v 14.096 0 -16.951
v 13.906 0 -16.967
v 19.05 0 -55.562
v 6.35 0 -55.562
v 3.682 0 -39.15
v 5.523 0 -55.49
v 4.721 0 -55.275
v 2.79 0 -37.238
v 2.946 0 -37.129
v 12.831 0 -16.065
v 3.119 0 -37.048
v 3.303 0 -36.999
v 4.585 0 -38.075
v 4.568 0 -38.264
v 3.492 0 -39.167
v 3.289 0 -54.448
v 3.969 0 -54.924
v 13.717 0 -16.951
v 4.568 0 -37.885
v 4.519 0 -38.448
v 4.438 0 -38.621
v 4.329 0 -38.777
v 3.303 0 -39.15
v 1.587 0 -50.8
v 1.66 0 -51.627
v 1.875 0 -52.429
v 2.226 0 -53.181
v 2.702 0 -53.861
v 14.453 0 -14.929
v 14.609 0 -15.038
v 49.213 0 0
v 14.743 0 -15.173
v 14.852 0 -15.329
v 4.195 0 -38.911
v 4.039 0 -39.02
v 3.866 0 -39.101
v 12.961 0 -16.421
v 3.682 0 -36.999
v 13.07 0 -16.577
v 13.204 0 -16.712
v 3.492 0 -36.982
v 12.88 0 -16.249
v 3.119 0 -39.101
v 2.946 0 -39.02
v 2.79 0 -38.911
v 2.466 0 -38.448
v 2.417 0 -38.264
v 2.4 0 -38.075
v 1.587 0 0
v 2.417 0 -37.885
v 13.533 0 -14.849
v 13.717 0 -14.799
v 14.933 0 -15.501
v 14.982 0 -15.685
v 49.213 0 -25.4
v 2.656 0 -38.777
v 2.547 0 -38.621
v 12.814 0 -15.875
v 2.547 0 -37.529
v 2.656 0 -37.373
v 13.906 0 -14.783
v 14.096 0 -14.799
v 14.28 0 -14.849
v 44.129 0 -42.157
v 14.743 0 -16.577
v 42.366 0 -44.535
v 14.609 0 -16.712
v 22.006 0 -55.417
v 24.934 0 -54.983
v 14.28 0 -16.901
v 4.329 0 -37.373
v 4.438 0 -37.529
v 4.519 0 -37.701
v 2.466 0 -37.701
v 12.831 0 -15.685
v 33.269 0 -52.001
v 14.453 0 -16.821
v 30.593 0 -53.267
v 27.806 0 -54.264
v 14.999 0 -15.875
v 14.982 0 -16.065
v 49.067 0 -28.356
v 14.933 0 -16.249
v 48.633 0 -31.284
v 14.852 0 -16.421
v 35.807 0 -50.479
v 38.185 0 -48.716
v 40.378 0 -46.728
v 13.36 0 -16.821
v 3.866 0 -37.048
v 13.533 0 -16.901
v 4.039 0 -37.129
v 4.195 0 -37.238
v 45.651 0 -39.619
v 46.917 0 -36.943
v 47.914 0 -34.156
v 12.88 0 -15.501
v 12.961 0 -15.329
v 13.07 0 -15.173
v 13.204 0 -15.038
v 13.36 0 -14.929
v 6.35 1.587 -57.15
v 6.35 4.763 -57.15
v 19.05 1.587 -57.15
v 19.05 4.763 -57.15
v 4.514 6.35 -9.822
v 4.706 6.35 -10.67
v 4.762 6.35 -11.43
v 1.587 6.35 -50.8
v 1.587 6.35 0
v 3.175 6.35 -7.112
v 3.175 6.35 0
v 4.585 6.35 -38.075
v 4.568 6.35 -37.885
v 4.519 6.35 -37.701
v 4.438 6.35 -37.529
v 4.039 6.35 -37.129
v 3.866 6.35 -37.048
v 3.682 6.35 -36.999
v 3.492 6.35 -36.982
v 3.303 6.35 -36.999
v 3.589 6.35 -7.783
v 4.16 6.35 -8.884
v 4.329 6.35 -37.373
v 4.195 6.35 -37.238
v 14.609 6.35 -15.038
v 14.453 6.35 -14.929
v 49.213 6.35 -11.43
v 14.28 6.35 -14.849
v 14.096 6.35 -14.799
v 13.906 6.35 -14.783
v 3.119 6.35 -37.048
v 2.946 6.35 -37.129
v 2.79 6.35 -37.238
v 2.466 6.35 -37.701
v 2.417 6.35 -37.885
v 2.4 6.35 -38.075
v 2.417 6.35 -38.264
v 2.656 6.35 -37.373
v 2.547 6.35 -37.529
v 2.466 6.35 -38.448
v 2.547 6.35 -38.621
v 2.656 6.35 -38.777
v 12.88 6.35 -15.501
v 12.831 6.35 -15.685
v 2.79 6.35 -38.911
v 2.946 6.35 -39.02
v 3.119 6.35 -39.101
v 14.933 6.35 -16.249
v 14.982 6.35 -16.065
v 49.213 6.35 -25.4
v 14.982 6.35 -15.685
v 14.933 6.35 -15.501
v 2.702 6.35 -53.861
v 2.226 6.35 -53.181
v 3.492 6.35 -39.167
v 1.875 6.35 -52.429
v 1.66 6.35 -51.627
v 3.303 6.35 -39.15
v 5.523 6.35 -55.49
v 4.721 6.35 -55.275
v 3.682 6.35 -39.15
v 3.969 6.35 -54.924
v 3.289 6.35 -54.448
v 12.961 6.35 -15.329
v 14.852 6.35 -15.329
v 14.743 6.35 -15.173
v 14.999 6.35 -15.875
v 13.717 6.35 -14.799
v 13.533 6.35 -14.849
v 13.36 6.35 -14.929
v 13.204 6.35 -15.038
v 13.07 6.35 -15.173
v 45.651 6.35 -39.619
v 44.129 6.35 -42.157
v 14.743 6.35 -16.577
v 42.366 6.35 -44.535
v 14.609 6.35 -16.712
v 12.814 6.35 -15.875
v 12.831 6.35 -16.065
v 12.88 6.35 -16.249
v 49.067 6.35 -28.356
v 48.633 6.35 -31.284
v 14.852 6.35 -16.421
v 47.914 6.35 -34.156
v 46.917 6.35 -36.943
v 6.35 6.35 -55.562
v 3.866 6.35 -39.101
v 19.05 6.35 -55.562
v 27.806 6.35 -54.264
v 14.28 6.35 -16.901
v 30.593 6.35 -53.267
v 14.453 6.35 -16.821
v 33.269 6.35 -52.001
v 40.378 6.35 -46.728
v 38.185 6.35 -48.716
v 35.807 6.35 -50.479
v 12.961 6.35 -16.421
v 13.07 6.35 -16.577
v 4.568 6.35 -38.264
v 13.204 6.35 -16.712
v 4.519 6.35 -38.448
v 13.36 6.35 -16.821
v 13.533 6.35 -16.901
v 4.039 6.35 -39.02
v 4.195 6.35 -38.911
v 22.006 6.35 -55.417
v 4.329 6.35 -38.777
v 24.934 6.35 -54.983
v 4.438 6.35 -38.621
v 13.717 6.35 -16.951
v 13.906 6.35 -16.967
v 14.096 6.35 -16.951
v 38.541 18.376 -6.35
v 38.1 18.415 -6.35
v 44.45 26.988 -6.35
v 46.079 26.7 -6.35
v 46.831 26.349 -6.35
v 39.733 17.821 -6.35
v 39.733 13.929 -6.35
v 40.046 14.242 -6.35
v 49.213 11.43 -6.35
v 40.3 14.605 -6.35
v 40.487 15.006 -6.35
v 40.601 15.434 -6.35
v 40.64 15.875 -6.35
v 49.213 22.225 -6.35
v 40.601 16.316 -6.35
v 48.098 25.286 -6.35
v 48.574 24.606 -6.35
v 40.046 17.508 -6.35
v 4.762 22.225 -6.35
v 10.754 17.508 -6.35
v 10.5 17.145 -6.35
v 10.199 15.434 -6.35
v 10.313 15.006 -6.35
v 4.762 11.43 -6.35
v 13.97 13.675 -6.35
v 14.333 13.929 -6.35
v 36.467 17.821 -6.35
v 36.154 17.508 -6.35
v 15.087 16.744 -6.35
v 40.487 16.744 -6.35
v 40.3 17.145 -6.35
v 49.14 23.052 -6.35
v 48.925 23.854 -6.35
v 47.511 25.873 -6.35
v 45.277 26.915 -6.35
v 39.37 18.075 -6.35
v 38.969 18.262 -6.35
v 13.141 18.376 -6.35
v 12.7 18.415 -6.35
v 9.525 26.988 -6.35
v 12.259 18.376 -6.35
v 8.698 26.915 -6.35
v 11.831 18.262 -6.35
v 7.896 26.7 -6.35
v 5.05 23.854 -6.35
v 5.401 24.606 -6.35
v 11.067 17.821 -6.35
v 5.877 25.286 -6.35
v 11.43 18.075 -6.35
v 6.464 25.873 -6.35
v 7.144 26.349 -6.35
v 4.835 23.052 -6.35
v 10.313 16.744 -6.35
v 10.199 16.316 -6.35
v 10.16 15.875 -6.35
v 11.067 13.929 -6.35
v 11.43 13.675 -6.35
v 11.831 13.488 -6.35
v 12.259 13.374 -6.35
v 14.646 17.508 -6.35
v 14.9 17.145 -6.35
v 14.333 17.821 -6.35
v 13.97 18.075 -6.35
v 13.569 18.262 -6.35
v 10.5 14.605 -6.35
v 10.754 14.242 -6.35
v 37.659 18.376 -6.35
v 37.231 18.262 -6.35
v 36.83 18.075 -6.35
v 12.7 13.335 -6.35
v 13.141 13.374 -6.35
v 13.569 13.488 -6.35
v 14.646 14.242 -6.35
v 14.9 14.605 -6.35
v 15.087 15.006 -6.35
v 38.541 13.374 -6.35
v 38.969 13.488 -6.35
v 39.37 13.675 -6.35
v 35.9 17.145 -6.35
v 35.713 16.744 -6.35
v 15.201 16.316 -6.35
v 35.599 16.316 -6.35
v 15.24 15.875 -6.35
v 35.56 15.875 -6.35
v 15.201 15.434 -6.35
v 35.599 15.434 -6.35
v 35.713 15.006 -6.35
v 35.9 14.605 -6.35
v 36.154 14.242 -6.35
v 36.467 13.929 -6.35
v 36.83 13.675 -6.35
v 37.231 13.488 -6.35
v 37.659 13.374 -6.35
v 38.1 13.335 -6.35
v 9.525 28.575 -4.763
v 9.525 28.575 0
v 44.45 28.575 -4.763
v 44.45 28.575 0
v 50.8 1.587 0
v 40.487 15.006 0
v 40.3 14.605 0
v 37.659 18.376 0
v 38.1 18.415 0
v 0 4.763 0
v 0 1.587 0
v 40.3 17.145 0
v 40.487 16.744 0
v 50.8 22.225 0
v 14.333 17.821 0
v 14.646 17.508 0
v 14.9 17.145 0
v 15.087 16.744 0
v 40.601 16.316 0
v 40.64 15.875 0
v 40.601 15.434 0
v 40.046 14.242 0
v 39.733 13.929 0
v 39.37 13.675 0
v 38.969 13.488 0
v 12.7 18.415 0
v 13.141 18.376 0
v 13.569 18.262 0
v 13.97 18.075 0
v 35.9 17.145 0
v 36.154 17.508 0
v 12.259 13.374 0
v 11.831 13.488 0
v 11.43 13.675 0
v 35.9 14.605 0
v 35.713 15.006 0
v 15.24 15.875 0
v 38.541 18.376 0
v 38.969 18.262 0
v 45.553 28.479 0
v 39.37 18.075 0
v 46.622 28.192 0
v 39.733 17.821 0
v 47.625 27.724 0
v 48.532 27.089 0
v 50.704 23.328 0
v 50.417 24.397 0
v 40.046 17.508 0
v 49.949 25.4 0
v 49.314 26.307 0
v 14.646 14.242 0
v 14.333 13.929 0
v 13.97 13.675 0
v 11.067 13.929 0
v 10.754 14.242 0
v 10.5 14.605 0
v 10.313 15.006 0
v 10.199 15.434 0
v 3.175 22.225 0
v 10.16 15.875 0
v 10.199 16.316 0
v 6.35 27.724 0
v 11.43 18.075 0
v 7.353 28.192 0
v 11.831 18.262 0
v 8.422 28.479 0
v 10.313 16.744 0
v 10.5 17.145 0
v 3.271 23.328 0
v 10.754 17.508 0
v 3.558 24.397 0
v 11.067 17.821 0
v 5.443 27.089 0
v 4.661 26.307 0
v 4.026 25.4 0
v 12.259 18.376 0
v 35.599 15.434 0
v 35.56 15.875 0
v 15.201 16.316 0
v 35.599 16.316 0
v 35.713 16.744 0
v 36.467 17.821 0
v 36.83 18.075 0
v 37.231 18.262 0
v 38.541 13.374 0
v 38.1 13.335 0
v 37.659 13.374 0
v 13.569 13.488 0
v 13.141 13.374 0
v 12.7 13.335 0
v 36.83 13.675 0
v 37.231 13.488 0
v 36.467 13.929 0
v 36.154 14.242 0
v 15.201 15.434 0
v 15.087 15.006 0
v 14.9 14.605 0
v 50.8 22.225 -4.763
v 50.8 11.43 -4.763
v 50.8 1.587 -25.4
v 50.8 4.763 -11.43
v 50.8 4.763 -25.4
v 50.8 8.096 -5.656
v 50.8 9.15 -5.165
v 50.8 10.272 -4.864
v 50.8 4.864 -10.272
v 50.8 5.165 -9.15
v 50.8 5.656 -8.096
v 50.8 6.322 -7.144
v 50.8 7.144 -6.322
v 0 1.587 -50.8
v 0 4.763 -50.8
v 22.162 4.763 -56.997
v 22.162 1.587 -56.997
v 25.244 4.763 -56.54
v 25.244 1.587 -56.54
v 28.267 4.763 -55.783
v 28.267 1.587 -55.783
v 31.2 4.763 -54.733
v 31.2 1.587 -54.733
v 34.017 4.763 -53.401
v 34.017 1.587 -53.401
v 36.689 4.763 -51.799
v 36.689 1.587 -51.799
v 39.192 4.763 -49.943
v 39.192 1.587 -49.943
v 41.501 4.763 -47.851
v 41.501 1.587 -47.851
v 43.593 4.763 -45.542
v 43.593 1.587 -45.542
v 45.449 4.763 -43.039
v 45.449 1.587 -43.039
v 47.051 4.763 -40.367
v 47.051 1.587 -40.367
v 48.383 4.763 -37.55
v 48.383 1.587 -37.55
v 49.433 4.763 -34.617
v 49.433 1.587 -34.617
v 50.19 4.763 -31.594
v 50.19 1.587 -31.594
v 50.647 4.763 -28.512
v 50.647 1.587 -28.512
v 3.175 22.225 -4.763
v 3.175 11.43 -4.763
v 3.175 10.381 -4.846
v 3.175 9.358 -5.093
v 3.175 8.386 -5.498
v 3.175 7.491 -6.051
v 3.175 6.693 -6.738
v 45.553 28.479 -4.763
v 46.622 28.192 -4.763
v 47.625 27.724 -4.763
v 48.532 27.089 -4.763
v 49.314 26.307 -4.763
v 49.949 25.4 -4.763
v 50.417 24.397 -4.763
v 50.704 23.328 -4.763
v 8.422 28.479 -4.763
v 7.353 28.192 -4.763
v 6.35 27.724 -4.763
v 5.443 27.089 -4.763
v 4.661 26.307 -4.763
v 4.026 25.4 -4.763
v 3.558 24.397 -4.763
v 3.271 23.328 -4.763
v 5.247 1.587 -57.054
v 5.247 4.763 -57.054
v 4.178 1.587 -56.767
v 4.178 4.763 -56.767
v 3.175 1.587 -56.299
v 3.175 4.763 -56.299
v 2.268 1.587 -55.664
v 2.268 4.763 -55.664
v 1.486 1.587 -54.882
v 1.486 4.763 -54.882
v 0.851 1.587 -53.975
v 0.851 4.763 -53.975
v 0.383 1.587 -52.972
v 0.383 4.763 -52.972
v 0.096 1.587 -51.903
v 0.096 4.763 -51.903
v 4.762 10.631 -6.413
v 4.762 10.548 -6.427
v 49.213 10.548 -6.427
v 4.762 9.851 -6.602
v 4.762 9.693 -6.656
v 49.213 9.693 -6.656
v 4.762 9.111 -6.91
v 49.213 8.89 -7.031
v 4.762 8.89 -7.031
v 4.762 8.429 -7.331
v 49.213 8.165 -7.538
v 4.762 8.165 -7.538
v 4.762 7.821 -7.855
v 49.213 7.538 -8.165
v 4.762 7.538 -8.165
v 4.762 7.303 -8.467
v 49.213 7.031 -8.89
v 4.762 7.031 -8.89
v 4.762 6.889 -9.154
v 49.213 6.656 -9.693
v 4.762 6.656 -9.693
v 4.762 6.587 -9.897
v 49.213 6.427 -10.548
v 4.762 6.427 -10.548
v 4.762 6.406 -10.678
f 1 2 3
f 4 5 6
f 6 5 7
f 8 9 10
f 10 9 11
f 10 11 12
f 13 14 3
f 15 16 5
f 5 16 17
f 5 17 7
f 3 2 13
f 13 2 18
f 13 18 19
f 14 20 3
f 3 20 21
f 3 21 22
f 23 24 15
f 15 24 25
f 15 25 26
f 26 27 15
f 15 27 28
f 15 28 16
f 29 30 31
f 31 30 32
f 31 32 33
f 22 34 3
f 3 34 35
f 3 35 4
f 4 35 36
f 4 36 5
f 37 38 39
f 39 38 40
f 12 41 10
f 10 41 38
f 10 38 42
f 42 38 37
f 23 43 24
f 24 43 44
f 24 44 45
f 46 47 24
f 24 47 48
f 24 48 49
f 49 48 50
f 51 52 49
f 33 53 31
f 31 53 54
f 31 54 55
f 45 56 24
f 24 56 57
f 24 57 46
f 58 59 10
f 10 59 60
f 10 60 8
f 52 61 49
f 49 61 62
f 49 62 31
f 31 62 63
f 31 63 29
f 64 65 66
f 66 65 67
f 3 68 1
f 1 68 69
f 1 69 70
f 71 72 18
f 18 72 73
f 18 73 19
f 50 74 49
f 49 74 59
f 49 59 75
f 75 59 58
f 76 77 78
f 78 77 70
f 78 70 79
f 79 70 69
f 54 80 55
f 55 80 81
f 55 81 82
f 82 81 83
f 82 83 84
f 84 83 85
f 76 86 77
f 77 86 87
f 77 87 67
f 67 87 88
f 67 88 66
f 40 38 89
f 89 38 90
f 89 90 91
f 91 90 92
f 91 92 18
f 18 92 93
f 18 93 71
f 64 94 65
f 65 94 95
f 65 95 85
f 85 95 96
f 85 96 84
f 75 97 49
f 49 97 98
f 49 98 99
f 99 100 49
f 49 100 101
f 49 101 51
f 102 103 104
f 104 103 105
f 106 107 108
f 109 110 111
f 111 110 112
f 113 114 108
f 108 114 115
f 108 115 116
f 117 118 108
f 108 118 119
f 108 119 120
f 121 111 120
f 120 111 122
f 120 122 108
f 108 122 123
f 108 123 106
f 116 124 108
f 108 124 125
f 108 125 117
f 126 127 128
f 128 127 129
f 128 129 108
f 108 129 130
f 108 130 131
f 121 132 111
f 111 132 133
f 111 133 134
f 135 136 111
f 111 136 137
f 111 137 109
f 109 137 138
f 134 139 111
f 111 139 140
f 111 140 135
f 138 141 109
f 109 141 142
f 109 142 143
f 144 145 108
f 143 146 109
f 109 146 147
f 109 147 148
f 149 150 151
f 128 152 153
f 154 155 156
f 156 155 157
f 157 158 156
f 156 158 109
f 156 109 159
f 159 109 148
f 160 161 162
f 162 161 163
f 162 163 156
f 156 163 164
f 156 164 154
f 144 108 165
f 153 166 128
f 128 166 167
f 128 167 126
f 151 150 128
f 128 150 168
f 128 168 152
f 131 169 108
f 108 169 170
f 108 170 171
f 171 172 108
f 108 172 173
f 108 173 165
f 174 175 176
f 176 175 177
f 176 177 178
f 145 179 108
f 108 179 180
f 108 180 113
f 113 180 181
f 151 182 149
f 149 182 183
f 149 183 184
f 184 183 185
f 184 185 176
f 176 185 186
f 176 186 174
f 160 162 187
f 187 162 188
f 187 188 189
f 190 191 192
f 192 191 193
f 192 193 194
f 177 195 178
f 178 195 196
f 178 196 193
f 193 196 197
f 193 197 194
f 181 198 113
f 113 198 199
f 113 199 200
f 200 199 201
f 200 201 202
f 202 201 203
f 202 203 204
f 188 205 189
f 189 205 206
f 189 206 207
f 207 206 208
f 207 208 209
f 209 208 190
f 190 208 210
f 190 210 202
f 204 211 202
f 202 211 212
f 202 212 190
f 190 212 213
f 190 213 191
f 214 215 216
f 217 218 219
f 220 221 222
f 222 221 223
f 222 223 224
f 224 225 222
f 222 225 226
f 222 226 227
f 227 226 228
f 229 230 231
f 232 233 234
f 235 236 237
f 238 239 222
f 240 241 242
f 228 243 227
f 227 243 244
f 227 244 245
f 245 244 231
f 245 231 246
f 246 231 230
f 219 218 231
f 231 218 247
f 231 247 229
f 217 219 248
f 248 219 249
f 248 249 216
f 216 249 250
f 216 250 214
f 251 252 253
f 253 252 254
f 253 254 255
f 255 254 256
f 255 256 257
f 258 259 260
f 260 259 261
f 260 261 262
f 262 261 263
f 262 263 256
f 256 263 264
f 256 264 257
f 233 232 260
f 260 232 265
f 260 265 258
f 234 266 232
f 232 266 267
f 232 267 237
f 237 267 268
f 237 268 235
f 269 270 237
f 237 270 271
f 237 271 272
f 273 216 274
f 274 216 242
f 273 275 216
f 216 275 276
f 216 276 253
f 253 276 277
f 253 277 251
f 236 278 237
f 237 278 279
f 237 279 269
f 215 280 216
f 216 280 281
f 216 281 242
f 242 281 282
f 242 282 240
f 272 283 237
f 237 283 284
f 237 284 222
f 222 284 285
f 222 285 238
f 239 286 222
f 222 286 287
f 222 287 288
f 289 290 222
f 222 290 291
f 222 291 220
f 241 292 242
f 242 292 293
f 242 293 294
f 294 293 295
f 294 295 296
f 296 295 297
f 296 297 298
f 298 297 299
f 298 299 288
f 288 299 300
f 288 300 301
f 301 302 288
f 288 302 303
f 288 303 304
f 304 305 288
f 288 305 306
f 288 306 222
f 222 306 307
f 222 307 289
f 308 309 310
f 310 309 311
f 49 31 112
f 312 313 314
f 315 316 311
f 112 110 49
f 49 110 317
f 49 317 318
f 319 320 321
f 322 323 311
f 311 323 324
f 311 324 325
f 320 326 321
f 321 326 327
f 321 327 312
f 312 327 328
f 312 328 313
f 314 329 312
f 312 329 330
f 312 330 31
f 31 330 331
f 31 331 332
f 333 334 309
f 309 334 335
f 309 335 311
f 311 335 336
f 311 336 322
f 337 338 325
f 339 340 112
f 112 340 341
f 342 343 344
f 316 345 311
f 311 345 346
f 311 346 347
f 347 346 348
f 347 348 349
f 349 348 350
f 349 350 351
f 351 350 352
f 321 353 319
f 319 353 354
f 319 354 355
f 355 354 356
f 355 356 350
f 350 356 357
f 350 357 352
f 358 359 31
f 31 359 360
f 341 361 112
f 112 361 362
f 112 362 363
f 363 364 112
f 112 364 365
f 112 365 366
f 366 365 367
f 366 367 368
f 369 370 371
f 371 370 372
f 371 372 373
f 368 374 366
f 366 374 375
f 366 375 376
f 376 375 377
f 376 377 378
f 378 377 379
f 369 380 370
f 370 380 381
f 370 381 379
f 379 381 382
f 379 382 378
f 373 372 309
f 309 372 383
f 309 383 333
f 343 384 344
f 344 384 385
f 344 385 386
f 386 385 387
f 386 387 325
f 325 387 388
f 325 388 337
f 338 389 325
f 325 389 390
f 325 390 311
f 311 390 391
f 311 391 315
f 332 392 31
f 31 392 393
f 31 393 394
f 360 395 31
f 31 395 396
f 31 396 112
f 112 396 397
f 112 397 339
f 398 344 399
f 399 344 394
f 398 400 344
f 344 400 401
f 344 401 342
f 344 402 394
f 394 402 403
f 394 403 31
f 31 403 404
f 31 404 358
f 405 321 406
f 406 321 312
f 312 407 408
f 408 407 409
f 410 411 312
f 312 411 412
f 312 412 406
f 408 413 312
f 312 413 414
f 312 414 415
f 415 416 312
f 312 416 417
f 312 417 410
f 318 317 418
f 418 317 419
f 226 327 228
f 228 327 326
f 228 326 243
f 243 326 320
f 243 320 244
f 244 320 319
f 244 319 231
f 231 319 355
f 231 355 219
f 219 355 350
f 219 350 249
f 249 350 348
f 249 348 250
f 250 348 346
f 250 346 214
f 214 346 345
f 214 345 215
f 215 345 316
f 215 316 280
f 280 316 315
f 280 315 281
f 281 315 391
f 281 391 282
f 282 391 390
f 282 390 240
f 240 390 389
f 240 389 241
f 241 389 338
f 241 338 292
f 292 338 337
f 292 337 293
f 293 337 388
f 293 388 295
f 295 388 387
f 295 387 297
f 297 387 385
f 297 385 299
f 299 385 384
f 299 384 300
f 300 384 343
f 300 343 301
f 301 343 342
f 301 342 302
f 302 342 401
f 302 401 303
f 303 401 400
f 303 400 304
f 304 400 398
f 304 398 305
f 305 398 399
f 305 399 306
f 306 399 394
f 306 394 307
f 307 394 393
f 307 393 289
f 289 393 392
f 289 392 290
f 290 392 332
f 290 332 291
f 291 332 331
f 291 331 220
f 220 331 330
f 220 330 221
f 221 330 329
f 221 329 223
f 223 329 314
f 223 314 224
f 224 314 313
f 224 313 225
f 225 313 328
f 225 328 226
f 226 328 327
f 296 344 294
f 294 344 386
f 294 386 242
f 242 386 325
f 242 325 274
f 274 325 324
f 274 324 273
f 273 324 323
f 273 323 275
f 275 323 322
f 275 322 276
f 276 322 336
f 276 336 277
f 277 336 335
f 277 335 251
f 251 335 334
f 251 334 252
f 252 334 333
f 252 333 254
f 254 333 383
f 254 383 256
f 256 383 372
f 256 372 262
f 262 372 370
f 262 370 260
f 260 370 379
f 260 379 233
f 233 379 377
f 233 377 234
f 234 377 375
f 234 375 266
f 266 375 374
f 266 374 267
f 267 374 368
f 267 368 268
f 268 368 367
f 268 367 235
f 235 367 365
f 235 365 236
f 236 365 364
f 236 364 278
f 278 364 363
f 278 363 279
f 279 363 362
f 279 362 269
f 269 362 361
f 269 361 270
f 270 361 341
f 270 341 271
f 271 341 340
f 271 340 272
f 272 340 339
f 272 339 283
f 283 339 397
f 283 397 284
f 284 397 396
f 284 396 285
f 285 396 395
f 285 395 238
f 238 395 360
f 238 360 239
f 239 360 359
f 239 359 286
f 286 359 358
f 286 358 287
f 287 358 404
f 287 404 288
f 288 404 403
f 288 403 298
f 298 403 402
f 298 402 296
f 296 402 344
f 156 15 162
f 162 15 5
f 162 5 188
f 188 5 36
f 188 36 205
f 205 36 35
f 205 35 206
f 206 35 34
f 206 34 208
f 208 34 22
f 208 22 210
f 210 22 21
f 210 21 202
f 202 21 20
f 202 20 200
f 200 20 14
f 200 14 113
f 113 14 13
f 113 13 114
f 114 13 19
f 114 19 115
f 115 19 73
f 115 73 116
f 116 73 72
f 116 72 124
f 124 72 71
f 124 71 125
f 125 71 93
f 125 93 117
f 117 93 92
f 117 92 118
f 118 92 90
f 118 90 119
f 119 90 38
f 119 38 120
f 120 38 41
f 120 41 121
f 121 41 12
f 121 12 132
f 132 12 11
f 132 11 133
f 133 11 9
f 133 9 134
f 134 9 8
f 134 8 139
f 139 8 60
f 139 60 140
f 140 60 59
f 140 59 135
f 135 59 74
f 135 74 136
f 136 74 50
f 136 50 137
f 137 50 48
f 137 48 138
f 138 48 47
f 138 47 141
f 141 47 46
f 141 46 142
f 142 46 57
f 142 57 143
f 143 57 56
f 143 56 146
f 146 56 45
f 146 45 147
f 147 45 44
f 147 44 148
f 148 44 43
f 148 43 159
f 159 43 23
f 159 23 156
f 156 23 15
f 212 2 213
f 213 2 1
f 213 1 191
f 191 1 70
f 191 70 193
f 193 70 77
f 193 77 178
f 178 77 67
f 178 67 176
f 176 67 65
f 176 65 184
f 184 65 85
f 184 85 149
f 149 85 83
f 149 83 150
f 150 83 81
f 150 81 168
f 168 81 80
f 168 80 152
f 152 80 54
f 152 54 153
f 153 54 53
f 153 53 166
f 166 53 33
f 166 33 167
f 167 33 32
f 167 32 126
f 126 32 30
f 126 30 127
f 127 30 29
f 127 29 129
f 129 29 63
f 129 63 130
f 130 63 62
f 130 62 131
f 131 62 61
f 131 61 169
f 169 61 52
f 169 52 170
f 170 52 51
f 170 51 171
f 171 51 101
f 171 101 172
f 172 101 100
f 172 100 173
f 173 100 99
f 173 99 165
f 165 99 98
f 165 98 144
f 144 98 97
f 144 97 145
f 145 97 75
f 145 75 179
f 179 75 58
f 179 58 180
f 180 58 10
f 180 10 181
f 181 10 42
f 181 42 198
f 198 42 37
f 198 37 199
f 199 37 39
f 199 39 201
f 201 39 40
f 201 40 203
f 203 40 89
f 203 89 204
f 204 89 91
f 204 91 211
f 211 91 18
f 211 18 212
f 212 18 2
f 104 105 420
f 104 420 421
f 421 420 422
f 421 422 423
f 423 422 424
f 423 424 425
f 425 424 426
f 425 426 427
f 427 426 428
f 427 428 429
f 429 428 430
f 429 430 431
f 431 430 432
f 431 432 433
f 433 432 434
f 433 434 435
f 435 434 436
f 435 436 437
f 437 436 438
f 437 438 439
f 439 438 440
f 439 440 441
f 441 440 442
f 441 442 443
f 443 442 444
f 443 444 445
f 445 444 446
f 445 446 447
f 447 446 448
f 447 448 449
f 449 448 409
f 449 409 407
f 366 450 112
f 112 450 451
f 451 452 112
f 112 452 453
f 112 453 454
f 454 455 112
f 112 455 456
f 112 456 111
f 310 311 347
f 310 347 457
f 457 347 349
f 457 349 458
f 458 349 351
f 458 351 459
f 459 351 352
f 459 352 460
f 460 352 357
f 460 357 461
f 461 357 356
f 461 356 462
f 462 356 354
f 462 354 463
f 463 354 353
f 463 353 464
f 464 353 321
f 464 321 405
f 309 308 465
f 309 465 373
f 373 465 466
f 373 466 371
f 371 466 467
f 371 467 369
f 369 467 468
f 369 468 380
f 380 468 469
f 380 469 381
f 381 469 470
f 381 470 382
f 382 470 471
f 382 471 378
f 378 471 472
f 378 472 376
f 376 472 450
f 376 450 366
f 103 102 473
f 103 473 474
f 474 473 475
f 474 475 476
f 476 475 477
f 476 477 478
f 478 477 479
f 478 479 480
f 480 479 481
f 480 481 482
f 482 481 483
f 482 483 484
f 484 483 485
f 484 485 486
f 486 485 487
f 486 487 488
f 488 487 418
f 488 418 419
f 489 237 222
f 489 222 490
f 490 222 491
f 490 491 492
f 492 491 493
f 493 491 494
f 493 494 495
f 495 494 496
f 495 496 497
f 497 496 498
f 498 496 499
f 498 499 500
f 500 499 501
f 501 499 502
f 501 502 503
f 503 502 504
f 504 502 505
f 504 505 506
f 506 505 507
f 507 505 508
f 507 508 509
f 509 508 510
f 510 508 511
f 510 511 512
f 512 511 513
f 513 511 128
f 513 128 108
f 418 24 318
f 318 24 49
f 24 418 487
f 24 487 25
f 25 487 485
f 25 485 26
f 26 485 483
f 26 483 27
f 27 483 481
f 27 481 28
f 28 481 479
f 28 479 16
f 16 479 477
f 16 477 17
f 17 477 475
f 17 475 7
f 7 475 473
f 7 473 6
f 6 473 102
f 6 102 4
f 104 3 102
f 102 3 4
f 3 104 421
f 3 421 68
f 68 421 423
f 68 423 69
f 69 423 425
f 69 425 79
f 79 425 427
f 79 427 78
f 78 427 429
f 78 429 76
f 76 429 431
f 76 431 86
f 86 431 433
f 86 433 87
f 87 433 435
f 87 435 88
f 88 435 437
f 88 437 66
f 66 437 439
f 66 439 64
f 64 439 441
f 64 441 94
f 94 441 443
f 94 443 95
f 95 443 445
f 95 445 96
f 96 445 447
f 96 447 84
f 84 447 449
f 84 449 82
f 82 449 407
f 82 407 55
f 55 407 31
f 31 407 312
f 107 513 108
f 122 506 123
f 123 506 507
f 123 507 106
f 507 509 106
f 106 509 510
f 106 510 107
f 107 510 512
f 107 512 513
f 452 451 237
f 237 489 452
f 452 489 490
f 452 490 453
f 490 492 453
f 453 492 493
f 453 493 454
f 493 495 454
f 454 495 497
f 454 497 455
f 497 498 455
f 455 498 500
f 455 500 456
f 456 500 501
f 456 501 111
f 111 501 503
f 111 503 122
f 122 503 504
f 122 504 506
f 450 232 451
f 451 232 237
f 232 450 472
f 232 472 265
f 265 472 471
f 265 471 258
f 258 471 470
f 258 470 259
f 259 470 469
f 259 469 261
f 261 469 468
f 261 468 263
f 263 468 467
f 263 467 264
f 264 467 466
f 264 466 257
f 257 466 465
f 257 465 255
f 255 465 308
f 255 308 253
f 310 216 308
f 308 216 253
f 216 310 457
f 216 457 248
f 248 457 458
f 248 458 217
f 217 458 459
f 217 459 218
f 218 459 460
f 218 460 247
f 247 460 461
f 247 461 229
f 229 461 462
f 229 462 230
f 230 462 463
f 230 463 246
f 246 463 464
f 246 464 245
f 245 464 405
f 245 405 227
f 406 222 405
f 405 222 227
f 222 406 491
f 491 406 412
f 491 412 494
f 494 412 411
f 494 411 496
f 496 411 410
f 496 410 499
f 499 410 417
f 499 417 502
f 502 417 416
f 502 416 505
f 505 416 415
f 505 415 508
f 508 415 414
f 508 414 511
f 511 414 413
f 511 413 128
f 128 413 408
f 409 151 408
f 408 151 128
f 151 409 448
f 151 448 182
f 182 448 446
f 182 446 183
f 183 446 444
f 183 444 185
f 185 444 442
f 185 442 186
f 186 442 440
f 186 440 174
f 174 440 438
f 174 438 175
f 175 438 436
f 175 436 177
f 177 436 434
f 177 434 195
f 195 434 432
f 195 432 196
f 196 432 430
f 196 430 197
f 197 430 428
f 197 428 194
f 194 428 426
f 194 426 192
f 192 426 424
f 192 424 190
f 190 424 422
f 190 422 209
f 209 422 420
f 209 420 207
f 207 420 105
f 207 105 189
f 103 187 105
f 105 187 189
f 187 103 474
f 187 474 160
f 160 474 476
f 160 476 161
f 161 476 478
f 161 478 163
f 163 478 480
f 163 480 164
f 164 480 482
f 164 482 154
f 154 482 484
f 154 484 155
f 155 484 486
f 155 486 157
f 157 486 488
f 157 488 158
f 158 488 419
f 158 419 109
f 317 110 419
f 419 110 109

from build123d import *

# Parameters (mm, degrees)
BOSS_EXTRUDE1_DEPTH = 50.8
SKETCH2_R           = 2.54
CUT_EXTRUDE1_DEPTH  = 82.628996839
SKETCH3_R           = 1.0922
CUT_EXTRUDE2_DEPTH  = 82.628996839
FILLET2_R           = 31.75
SKETCH4_W           = 3.175
SKETCH4_H           = 22.225
CUT_EXTRUDE3_DEPTH  = 78.316302453
FILLET3_R           = 6.35
FILLET4_R           = 5.08
CHAMFER1_SIZE       = 1.5875


with BuildPart() as part:
    # Sketch1 → Boss-Extrude1 (new body)
    with BuildSketch(Plane(origin=(0, 0, 0), x_dir=(0, 0, -1), z_dir=(1, 0, 0))):
        Polygon((0, 0), (0, 28.575), (6.35, 28.575), (6.35, 6.35), (57.15, 6.35), (57.15, 0), align=None)
    extrude(amount=BOSS_EXTRUDE1_DEPTH)

    # Sketch2 → Cut-Extrude1 (cut, through all)
    with BuildSketch(Plane.XY):
        with Locations((12.7, 15.875)):
            Circle(SKETCH2_R)
        with Locations(Location((38.1, 15.875, 0), (0, 0, 270))):
            Circle(SKETCH2_R)
    extrude(amount=-CUT_EXTRUDE1_DEPTH, mode=Mode.SUBTRACT)

    # Sketch3 → Cut-Extrude2 (cut, through all)
    with BuildSketch(Plane.XZ):
        with Locations(Location((13.9065, -15.875, 0), (0, 0, 270))):
            Circle(SKETCH3_R)
        with Locations(Location((3.4925, -38.0746, 0), (0, 0, 270))):
            Circle(SKETCH3_R)
    extrude(amount=-CUT_EXTRUDE2_DEPTH, mode=Mode.SUBTRACT)

    # Fillet2
    fillet2_edges = [part.edges().sort_by_distance(p)[0] for p in [
        (50.8, 3.175, -57.15),
    ]]
    fillet(fillet2_edges, radius=FILLET2_R)

    # Sketch4 → Cut-Extrude3 (cut, through all)
    with BuildSketch(Plane(origin=(0, 0, -6.35), x_dir=(-1, 0, 0), z_dir=(0, 0, -1))):
        with Locations((-1.5875, 17.4625)):
            Rectangle(SKETCH4_W, SKETCH4_H)
    extrude(amount=-CUT_EXTRUDE3_DEPTH, mode=Mode.SUBTRACT)

    # Fillet3
    fillet3_edges = [part.edges().sort_by_distance(p)[0] for p in [
        (50.8, 28.575, -3.175),
        (3.175, 28.575, -3.175),
        (0, 3.175, -57.15),
    ]]
    fillet(fillet3_edges, radius=FILLET3_R)

    # Fillet4
    fillet4_edges = [part.edges().sort_by_distance(p)[0] for p in [
        (26.9875, 6.35, -6.35),
    ]]
    fillet(fillet4_edges, radius=FILLET4_R)

    # Chamfer1
    chamfer1_edges = [part.edges().sort_by_distance(p)[0] for p in [
        (50.8, 6.35, -18.415),
        (12.7, 6.35, -57.15),
        (41.500640303, 6.35, -47.850640303),
        (12.7, 0, -57.15),
        (41.500640303, 0, -47.850640303),
        (50.8, 0, -12.7),
        (26.9875, 28.575, -6.35),
        (3.175, 16.8275, -6.35),
        (5.034871939, 26.715128061, -6.35),
        (48.940128061, 26.715128061, -6.35),
        (0, 6.35, -25.4),
        (1.859871939, 6.35, -55.290128061),
        (1.859871939, 0, -55.290128061),
        (50.8, 16.8275, -6.35),
        (3.175, 7.837897552, -7.837897552),
        (50.8, 7.837897552, -7.837897552),
        (0, 0, -25.4),
    ]]
    chamfer(chamfer1_edges, length=CHAMFER1_SIZE)


solid = part.part
